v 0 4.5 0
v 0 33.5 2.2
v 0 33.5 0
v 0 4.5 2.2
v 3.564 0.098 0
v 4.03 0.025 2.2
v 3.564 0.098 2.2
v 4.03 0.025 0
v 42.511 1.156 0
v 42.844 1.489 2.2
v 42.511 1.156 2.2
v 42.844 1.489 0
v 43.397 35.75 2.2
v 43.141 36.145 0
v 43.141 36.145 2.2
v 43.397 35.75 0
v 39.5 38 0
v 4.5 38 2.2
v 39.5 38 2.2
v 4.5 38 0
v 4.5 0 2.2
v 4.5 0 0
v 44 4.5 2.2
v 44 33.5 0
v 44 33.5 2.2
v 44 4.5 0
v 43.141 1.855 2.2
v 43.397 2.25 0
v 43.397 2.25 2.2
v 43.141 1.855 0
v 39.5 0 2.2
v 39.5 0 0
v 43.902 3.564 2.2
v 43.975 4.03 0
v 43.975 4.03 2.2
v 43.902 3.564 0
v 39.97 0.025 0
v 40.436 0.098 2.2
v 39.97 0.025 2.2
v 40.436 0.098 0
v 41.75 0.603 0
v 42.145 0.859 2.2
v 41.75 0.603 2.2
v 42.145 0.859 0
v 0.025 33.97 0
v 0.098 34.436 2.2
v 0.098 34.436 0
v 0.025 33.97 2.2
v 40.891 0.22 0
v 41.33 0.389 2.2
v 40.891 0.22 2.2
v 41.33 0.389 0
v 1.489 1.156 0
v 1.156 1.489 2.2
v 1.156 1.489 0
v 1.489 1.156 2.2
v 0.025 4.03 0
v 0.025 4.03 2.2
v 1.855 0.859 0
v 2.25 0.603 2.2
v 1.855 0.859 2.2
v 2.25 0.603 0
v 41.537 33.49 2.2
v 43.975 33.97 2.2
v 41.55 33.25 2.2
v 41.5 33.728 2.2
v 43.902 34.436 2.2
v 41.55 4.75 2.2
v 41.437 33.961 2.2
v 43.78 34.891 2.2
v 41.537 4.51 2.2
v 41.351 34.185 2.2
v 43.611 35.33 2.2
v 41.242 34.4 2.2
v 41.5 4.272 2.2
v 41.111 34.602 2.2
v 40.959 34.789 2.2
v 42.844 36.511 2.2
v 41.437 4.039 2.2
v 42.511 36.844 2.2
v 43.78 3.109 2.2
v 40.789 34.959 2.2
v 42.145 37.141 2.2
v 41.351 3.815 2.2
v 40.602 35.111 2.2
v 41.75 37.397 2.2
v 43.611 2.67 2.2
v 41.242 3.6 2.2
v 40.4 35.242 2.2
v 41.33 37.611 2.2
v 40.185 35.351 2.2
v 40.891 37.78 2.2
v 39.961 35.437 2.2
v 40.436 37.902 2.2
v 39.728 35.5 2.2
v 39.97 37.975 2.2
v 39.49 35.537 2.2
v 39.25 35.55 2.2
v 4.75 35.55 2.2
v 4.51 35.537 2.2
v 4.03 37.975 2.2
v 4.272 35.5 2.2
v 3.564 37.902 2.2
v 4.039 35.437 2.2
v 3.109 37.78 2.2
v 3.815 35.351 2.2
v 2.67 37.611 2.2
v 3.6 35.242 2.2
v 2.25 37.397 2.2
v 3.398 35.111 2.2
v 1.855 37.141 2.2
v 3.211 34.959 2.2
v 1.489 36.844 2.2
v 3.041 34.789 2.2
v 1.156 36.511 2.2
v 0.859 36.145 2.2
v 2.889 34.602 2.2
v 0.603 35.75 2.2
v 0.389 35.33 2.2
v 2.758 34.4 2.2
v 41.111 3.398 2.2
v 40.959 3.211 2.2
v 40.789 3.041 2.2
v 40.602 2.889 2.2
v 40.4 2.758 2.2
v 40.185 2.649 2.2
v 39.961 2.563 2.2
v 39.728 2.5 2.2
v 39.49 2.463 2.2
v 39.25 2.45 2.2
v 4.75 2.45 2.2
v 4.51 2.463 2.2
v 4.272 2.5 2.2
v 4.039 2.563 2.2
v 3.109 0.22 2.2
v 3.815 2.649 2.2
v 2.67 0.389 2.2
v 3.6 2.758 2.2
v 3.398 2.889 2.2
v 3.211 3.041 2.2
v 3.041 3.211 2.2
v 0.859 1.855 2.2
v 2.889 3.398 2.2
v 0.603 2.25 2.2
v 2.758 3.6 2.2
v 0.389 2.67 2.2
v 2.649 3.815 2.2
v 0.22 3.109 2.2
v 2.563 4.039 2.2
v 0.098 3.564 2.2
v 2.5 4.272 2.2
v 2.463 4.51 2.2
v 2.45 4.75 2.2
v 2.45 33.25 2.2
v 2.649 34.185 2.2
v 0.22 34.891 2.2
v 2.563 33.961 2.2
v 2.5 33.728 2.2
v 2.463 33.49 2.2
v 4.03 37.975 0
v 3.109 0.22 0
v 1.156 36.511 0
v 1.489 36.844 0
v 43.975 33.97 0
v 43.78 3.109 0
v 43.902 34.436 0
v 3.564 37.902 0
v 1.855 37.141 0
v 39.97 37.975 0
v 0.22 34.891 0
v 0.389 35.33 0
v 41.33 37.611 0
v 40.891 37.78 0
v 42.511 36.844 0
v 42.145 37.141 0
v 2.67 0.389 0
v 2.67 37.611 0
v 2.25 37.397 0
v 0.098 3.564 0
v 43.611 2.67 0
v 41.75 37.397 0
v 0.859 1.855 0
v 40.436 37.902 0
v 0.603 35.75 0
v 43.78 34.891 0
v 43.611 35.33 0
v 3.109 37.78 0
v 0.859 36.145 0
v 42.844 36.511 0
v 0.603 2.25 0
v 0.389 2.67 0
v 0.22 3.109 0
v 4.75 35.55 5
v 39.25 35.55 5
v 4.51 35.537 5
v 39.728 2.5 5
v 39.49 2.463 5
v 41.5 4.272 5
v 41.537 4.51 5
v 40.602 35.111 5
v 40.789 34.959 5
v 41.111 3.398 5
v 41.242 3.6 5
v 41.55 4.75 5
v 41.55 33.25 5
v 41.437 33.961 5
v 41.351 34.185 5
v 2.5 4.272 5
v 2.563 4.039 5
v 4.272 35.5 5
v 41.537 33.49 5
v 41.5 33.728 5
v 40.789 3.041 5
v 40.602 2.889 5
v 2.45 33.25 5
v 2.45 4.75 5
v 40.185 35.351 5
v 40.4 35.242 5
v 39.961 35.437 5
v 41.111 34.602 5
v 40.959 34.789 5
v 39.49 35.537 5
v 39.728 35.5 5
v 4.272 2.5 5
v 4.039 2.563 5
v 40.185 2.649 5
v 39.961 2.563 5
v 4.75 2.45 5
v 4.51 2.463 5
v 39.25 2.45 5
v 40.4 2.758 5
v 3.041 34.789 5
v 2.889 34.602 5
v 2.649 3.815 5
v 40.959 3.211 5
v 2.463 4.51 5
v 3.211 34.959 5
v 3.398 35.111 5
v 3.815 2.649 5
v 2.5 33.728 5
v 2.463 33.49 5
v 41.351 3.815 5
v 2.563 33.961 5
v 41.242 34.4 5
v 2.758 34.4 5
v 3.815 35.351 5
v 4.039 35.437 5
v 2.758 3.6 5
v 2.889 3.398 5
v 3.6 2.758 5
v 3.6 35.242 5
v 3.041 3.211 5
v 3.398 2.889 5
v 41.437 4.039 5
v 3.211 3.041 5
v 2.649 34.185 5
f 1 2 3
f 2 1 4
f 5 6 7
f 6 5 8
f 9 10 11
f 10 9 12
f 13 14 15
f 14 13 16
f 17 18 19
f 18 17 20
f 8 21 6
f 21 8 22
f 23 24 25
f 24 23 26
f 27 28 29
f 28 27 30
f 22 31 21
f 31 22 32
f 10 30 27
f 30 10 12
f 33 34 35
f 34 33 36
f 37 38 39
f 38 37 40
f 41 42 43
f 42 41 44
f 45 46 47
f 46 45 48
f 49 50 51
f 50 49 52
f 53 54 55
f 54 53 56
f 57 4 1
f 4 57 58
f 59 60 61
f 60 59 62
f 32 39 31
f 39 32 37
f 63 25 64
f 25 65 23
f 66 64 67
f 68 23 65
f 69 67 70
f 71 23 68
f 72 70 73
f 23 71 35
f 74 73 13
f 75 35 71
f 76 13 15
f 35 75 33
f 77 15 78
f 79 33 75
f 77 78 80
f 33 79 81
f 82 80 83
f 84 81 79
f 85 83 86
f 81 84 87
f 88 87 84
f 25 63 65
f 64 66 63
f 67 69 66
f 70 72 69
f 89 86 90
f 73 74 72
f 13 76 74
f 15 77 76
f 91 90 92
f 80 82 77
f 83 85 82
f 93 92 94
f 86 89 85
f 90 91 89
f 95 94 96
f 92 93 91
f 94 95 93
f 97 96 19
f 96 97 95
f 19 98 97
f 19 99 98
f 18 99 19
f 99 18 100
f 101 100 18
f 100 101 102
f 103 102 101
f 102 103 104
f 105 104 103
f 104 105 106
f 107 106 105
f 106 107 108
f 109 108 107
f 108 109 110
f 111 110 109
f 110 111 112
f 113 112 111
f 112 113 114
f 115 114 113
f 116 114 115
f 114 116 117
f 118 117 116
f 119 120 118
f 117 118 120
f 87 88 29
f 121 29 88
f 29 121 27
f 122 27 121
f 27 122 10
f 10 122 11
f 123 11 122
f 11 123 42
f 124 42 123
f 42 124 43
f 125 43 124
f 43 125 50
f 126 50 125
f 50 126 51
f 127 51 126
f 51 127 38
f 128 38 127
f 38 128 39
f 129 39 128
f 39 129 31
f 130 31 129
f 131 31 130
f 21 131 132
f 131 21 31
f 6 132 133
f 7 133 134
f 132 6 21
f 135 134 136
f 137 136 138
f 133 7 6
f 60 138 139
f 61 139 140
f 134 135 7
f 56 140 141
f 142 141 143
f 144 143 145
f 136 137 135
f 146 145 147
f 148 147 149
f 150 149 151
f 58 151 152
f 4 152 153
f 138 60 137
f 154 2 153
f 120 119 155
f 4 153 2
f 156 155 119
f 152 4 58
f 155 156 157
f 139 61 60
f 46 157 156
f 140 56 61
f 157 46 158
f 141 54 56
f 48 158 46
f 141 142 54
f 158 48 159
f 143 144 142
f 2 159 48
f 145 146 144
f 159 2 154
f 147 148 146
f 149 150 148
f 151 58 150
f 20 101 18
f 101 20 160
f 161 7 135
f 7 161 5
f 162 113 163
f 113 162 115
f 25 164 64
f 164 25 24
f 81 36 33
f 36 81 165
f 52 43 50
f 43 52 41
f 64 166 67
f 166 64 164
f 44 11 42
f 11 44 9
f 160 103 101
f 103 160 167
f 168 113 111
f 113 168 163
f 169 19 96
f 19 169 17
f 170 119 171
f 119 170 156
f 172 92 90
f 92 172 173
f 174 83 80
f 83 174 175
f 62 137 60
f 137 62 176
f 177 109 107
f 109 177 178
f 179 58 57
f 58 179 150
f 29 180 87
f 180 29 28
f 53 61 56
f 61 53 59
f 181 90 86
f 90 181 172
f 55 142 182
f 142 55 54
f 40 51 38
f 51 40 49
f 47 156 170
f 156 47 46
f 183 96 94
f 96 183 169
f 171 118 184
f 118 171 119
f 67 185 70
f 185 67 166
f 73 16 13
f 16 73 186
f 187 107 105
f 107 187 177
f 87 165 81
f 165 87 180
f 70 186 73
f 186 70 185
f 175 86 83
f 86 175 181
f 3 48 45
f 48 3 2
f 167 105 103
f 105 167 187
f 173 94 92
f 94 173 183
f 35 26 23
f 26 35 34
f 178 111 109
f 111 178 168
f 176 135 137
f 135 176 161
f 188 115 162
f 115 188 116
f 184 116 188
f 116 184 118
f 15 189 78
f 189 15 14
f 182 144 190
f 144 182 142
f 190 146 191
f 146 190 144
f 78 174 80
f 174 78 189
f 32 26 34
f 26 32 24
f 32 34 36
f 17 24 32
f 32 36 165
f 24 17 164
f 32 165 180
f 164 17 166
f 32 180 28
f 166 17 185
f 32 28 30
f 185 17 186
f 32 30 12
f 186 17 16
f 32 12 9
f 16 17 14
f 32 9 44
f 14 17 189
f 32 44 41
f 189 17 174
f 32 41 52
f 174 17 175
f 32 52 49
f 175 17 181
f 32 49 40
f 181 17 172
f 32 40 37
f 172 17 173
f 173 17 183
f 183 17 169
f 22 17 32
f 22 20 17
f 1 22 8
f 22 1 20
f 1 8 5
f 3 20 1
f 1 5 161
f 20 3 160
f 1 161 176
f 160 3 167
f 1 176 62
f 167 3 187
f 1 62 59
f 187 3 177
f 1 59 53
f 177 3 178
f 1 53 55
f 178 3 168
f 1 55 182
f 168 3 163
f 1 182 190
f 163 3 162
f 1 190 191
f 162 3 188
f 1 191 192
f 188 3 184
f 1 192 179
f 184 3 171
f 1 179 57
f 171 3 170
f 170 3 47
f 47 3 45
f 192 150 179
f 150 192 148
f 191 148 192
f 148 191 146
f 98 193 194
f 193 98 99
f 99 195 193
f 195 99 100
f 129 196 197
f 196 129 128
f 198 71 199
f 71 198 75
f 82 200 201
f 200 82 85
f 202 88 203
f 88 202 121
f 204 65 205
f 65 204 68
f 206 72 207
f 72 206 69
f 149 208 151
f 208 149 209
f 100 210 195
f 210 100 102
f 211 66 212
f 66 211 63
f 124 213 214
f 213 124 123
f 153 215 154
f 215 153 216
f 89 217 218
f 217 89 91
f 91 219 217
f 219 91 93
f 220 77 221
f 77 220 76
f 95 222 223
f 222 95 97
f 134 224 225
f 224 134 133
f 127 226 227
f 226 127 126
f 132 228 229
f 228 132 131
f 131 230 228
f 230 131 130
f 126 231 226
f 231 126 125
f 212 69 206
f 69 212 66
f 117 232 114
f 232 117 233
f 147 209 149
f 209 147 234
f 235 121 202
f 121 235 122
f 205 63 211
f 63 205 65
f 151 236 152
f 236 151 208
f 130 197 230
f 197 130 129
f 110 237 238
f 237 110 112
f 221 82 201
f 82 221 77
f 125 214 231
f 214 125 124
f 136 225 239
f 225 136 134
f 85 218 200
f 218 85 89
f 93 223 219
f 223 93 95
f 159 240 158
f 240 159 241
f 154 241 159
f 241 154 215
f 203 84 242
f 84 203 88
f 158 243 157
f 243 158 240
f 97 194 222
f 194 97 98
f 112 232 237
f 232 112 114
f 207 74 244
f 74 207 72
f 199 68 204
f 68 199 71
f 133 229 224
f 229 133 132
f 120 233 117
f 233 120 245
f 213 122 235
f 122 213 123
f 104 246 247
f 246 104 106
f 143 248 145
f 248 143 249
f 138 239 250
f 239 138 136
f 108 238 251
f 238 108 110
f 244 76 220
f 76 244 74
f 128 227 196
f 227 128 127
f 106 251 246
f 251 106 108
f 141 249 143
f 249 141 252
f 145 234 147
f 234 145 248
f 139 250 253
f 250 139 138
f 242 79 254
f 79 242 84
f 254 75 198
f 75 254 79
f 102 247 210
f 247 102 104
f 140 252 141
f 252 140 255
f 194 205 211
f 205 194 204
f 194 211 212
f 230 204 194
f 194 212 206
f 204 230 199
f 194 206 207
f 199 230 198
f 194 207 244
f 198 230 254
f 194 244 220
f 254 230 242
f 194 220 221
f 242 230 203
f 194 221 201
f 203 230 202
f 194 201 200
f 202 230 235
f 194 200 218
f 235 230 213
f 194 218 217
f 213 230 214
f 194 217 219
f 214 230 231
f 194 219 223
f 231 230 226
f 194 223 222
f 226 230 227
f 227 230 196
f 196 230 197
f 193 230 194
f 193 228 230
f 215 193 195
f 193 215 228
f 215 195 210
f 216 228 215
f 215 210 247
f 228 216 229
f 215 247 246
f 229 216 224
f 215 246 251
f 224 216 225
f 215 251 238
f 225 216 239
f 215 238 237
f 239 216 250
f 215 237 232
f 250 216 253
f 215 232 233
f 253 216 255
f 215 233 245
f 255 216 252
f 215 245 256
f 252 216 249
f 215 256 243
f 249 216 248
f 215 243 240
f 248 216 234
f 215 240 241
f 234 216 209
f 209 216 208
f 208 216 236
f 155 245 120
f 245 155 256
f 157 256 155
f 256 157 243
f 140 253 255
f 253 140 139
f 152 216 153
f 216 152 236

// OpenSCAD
// =================================================================
// PART 3: Top Snap-On Enclosure Lid
// Units: Millimeters (mm)
// =================================================================

$fn = 60;

body_w   = 44.0;
body_d   = 38.0;
wall     = 2.2;
corner_r = 4.5;

module rounded_box(w, d, h, r) {
    hull() {
        translate([r, r, 0]) cylinder(r=r, h=h);
        translate([w - r, r, 0]) cylinder(r=r, h=h);
        translate([r, d - r, 0]) cylinder(r=r, h=h);
        translate([w - r, d - r, 0]) cylinder(r=r, h=h);
    }
}

module top_enclosure_lid() {
    union() {
        rounded_box(body_w, body_d, 2.2, corner_r);

        translate([wall + 0.25, wall + 0.25, 2.2])
            rounded_box(
                body_w - 2*(wall + 0.25),
                body_d - 2*(wall + 0.25),
                2.8,
                max(0.5, corner_r - wall)
            );
    }
}

// Render Lid
top_enclosure_lid();
